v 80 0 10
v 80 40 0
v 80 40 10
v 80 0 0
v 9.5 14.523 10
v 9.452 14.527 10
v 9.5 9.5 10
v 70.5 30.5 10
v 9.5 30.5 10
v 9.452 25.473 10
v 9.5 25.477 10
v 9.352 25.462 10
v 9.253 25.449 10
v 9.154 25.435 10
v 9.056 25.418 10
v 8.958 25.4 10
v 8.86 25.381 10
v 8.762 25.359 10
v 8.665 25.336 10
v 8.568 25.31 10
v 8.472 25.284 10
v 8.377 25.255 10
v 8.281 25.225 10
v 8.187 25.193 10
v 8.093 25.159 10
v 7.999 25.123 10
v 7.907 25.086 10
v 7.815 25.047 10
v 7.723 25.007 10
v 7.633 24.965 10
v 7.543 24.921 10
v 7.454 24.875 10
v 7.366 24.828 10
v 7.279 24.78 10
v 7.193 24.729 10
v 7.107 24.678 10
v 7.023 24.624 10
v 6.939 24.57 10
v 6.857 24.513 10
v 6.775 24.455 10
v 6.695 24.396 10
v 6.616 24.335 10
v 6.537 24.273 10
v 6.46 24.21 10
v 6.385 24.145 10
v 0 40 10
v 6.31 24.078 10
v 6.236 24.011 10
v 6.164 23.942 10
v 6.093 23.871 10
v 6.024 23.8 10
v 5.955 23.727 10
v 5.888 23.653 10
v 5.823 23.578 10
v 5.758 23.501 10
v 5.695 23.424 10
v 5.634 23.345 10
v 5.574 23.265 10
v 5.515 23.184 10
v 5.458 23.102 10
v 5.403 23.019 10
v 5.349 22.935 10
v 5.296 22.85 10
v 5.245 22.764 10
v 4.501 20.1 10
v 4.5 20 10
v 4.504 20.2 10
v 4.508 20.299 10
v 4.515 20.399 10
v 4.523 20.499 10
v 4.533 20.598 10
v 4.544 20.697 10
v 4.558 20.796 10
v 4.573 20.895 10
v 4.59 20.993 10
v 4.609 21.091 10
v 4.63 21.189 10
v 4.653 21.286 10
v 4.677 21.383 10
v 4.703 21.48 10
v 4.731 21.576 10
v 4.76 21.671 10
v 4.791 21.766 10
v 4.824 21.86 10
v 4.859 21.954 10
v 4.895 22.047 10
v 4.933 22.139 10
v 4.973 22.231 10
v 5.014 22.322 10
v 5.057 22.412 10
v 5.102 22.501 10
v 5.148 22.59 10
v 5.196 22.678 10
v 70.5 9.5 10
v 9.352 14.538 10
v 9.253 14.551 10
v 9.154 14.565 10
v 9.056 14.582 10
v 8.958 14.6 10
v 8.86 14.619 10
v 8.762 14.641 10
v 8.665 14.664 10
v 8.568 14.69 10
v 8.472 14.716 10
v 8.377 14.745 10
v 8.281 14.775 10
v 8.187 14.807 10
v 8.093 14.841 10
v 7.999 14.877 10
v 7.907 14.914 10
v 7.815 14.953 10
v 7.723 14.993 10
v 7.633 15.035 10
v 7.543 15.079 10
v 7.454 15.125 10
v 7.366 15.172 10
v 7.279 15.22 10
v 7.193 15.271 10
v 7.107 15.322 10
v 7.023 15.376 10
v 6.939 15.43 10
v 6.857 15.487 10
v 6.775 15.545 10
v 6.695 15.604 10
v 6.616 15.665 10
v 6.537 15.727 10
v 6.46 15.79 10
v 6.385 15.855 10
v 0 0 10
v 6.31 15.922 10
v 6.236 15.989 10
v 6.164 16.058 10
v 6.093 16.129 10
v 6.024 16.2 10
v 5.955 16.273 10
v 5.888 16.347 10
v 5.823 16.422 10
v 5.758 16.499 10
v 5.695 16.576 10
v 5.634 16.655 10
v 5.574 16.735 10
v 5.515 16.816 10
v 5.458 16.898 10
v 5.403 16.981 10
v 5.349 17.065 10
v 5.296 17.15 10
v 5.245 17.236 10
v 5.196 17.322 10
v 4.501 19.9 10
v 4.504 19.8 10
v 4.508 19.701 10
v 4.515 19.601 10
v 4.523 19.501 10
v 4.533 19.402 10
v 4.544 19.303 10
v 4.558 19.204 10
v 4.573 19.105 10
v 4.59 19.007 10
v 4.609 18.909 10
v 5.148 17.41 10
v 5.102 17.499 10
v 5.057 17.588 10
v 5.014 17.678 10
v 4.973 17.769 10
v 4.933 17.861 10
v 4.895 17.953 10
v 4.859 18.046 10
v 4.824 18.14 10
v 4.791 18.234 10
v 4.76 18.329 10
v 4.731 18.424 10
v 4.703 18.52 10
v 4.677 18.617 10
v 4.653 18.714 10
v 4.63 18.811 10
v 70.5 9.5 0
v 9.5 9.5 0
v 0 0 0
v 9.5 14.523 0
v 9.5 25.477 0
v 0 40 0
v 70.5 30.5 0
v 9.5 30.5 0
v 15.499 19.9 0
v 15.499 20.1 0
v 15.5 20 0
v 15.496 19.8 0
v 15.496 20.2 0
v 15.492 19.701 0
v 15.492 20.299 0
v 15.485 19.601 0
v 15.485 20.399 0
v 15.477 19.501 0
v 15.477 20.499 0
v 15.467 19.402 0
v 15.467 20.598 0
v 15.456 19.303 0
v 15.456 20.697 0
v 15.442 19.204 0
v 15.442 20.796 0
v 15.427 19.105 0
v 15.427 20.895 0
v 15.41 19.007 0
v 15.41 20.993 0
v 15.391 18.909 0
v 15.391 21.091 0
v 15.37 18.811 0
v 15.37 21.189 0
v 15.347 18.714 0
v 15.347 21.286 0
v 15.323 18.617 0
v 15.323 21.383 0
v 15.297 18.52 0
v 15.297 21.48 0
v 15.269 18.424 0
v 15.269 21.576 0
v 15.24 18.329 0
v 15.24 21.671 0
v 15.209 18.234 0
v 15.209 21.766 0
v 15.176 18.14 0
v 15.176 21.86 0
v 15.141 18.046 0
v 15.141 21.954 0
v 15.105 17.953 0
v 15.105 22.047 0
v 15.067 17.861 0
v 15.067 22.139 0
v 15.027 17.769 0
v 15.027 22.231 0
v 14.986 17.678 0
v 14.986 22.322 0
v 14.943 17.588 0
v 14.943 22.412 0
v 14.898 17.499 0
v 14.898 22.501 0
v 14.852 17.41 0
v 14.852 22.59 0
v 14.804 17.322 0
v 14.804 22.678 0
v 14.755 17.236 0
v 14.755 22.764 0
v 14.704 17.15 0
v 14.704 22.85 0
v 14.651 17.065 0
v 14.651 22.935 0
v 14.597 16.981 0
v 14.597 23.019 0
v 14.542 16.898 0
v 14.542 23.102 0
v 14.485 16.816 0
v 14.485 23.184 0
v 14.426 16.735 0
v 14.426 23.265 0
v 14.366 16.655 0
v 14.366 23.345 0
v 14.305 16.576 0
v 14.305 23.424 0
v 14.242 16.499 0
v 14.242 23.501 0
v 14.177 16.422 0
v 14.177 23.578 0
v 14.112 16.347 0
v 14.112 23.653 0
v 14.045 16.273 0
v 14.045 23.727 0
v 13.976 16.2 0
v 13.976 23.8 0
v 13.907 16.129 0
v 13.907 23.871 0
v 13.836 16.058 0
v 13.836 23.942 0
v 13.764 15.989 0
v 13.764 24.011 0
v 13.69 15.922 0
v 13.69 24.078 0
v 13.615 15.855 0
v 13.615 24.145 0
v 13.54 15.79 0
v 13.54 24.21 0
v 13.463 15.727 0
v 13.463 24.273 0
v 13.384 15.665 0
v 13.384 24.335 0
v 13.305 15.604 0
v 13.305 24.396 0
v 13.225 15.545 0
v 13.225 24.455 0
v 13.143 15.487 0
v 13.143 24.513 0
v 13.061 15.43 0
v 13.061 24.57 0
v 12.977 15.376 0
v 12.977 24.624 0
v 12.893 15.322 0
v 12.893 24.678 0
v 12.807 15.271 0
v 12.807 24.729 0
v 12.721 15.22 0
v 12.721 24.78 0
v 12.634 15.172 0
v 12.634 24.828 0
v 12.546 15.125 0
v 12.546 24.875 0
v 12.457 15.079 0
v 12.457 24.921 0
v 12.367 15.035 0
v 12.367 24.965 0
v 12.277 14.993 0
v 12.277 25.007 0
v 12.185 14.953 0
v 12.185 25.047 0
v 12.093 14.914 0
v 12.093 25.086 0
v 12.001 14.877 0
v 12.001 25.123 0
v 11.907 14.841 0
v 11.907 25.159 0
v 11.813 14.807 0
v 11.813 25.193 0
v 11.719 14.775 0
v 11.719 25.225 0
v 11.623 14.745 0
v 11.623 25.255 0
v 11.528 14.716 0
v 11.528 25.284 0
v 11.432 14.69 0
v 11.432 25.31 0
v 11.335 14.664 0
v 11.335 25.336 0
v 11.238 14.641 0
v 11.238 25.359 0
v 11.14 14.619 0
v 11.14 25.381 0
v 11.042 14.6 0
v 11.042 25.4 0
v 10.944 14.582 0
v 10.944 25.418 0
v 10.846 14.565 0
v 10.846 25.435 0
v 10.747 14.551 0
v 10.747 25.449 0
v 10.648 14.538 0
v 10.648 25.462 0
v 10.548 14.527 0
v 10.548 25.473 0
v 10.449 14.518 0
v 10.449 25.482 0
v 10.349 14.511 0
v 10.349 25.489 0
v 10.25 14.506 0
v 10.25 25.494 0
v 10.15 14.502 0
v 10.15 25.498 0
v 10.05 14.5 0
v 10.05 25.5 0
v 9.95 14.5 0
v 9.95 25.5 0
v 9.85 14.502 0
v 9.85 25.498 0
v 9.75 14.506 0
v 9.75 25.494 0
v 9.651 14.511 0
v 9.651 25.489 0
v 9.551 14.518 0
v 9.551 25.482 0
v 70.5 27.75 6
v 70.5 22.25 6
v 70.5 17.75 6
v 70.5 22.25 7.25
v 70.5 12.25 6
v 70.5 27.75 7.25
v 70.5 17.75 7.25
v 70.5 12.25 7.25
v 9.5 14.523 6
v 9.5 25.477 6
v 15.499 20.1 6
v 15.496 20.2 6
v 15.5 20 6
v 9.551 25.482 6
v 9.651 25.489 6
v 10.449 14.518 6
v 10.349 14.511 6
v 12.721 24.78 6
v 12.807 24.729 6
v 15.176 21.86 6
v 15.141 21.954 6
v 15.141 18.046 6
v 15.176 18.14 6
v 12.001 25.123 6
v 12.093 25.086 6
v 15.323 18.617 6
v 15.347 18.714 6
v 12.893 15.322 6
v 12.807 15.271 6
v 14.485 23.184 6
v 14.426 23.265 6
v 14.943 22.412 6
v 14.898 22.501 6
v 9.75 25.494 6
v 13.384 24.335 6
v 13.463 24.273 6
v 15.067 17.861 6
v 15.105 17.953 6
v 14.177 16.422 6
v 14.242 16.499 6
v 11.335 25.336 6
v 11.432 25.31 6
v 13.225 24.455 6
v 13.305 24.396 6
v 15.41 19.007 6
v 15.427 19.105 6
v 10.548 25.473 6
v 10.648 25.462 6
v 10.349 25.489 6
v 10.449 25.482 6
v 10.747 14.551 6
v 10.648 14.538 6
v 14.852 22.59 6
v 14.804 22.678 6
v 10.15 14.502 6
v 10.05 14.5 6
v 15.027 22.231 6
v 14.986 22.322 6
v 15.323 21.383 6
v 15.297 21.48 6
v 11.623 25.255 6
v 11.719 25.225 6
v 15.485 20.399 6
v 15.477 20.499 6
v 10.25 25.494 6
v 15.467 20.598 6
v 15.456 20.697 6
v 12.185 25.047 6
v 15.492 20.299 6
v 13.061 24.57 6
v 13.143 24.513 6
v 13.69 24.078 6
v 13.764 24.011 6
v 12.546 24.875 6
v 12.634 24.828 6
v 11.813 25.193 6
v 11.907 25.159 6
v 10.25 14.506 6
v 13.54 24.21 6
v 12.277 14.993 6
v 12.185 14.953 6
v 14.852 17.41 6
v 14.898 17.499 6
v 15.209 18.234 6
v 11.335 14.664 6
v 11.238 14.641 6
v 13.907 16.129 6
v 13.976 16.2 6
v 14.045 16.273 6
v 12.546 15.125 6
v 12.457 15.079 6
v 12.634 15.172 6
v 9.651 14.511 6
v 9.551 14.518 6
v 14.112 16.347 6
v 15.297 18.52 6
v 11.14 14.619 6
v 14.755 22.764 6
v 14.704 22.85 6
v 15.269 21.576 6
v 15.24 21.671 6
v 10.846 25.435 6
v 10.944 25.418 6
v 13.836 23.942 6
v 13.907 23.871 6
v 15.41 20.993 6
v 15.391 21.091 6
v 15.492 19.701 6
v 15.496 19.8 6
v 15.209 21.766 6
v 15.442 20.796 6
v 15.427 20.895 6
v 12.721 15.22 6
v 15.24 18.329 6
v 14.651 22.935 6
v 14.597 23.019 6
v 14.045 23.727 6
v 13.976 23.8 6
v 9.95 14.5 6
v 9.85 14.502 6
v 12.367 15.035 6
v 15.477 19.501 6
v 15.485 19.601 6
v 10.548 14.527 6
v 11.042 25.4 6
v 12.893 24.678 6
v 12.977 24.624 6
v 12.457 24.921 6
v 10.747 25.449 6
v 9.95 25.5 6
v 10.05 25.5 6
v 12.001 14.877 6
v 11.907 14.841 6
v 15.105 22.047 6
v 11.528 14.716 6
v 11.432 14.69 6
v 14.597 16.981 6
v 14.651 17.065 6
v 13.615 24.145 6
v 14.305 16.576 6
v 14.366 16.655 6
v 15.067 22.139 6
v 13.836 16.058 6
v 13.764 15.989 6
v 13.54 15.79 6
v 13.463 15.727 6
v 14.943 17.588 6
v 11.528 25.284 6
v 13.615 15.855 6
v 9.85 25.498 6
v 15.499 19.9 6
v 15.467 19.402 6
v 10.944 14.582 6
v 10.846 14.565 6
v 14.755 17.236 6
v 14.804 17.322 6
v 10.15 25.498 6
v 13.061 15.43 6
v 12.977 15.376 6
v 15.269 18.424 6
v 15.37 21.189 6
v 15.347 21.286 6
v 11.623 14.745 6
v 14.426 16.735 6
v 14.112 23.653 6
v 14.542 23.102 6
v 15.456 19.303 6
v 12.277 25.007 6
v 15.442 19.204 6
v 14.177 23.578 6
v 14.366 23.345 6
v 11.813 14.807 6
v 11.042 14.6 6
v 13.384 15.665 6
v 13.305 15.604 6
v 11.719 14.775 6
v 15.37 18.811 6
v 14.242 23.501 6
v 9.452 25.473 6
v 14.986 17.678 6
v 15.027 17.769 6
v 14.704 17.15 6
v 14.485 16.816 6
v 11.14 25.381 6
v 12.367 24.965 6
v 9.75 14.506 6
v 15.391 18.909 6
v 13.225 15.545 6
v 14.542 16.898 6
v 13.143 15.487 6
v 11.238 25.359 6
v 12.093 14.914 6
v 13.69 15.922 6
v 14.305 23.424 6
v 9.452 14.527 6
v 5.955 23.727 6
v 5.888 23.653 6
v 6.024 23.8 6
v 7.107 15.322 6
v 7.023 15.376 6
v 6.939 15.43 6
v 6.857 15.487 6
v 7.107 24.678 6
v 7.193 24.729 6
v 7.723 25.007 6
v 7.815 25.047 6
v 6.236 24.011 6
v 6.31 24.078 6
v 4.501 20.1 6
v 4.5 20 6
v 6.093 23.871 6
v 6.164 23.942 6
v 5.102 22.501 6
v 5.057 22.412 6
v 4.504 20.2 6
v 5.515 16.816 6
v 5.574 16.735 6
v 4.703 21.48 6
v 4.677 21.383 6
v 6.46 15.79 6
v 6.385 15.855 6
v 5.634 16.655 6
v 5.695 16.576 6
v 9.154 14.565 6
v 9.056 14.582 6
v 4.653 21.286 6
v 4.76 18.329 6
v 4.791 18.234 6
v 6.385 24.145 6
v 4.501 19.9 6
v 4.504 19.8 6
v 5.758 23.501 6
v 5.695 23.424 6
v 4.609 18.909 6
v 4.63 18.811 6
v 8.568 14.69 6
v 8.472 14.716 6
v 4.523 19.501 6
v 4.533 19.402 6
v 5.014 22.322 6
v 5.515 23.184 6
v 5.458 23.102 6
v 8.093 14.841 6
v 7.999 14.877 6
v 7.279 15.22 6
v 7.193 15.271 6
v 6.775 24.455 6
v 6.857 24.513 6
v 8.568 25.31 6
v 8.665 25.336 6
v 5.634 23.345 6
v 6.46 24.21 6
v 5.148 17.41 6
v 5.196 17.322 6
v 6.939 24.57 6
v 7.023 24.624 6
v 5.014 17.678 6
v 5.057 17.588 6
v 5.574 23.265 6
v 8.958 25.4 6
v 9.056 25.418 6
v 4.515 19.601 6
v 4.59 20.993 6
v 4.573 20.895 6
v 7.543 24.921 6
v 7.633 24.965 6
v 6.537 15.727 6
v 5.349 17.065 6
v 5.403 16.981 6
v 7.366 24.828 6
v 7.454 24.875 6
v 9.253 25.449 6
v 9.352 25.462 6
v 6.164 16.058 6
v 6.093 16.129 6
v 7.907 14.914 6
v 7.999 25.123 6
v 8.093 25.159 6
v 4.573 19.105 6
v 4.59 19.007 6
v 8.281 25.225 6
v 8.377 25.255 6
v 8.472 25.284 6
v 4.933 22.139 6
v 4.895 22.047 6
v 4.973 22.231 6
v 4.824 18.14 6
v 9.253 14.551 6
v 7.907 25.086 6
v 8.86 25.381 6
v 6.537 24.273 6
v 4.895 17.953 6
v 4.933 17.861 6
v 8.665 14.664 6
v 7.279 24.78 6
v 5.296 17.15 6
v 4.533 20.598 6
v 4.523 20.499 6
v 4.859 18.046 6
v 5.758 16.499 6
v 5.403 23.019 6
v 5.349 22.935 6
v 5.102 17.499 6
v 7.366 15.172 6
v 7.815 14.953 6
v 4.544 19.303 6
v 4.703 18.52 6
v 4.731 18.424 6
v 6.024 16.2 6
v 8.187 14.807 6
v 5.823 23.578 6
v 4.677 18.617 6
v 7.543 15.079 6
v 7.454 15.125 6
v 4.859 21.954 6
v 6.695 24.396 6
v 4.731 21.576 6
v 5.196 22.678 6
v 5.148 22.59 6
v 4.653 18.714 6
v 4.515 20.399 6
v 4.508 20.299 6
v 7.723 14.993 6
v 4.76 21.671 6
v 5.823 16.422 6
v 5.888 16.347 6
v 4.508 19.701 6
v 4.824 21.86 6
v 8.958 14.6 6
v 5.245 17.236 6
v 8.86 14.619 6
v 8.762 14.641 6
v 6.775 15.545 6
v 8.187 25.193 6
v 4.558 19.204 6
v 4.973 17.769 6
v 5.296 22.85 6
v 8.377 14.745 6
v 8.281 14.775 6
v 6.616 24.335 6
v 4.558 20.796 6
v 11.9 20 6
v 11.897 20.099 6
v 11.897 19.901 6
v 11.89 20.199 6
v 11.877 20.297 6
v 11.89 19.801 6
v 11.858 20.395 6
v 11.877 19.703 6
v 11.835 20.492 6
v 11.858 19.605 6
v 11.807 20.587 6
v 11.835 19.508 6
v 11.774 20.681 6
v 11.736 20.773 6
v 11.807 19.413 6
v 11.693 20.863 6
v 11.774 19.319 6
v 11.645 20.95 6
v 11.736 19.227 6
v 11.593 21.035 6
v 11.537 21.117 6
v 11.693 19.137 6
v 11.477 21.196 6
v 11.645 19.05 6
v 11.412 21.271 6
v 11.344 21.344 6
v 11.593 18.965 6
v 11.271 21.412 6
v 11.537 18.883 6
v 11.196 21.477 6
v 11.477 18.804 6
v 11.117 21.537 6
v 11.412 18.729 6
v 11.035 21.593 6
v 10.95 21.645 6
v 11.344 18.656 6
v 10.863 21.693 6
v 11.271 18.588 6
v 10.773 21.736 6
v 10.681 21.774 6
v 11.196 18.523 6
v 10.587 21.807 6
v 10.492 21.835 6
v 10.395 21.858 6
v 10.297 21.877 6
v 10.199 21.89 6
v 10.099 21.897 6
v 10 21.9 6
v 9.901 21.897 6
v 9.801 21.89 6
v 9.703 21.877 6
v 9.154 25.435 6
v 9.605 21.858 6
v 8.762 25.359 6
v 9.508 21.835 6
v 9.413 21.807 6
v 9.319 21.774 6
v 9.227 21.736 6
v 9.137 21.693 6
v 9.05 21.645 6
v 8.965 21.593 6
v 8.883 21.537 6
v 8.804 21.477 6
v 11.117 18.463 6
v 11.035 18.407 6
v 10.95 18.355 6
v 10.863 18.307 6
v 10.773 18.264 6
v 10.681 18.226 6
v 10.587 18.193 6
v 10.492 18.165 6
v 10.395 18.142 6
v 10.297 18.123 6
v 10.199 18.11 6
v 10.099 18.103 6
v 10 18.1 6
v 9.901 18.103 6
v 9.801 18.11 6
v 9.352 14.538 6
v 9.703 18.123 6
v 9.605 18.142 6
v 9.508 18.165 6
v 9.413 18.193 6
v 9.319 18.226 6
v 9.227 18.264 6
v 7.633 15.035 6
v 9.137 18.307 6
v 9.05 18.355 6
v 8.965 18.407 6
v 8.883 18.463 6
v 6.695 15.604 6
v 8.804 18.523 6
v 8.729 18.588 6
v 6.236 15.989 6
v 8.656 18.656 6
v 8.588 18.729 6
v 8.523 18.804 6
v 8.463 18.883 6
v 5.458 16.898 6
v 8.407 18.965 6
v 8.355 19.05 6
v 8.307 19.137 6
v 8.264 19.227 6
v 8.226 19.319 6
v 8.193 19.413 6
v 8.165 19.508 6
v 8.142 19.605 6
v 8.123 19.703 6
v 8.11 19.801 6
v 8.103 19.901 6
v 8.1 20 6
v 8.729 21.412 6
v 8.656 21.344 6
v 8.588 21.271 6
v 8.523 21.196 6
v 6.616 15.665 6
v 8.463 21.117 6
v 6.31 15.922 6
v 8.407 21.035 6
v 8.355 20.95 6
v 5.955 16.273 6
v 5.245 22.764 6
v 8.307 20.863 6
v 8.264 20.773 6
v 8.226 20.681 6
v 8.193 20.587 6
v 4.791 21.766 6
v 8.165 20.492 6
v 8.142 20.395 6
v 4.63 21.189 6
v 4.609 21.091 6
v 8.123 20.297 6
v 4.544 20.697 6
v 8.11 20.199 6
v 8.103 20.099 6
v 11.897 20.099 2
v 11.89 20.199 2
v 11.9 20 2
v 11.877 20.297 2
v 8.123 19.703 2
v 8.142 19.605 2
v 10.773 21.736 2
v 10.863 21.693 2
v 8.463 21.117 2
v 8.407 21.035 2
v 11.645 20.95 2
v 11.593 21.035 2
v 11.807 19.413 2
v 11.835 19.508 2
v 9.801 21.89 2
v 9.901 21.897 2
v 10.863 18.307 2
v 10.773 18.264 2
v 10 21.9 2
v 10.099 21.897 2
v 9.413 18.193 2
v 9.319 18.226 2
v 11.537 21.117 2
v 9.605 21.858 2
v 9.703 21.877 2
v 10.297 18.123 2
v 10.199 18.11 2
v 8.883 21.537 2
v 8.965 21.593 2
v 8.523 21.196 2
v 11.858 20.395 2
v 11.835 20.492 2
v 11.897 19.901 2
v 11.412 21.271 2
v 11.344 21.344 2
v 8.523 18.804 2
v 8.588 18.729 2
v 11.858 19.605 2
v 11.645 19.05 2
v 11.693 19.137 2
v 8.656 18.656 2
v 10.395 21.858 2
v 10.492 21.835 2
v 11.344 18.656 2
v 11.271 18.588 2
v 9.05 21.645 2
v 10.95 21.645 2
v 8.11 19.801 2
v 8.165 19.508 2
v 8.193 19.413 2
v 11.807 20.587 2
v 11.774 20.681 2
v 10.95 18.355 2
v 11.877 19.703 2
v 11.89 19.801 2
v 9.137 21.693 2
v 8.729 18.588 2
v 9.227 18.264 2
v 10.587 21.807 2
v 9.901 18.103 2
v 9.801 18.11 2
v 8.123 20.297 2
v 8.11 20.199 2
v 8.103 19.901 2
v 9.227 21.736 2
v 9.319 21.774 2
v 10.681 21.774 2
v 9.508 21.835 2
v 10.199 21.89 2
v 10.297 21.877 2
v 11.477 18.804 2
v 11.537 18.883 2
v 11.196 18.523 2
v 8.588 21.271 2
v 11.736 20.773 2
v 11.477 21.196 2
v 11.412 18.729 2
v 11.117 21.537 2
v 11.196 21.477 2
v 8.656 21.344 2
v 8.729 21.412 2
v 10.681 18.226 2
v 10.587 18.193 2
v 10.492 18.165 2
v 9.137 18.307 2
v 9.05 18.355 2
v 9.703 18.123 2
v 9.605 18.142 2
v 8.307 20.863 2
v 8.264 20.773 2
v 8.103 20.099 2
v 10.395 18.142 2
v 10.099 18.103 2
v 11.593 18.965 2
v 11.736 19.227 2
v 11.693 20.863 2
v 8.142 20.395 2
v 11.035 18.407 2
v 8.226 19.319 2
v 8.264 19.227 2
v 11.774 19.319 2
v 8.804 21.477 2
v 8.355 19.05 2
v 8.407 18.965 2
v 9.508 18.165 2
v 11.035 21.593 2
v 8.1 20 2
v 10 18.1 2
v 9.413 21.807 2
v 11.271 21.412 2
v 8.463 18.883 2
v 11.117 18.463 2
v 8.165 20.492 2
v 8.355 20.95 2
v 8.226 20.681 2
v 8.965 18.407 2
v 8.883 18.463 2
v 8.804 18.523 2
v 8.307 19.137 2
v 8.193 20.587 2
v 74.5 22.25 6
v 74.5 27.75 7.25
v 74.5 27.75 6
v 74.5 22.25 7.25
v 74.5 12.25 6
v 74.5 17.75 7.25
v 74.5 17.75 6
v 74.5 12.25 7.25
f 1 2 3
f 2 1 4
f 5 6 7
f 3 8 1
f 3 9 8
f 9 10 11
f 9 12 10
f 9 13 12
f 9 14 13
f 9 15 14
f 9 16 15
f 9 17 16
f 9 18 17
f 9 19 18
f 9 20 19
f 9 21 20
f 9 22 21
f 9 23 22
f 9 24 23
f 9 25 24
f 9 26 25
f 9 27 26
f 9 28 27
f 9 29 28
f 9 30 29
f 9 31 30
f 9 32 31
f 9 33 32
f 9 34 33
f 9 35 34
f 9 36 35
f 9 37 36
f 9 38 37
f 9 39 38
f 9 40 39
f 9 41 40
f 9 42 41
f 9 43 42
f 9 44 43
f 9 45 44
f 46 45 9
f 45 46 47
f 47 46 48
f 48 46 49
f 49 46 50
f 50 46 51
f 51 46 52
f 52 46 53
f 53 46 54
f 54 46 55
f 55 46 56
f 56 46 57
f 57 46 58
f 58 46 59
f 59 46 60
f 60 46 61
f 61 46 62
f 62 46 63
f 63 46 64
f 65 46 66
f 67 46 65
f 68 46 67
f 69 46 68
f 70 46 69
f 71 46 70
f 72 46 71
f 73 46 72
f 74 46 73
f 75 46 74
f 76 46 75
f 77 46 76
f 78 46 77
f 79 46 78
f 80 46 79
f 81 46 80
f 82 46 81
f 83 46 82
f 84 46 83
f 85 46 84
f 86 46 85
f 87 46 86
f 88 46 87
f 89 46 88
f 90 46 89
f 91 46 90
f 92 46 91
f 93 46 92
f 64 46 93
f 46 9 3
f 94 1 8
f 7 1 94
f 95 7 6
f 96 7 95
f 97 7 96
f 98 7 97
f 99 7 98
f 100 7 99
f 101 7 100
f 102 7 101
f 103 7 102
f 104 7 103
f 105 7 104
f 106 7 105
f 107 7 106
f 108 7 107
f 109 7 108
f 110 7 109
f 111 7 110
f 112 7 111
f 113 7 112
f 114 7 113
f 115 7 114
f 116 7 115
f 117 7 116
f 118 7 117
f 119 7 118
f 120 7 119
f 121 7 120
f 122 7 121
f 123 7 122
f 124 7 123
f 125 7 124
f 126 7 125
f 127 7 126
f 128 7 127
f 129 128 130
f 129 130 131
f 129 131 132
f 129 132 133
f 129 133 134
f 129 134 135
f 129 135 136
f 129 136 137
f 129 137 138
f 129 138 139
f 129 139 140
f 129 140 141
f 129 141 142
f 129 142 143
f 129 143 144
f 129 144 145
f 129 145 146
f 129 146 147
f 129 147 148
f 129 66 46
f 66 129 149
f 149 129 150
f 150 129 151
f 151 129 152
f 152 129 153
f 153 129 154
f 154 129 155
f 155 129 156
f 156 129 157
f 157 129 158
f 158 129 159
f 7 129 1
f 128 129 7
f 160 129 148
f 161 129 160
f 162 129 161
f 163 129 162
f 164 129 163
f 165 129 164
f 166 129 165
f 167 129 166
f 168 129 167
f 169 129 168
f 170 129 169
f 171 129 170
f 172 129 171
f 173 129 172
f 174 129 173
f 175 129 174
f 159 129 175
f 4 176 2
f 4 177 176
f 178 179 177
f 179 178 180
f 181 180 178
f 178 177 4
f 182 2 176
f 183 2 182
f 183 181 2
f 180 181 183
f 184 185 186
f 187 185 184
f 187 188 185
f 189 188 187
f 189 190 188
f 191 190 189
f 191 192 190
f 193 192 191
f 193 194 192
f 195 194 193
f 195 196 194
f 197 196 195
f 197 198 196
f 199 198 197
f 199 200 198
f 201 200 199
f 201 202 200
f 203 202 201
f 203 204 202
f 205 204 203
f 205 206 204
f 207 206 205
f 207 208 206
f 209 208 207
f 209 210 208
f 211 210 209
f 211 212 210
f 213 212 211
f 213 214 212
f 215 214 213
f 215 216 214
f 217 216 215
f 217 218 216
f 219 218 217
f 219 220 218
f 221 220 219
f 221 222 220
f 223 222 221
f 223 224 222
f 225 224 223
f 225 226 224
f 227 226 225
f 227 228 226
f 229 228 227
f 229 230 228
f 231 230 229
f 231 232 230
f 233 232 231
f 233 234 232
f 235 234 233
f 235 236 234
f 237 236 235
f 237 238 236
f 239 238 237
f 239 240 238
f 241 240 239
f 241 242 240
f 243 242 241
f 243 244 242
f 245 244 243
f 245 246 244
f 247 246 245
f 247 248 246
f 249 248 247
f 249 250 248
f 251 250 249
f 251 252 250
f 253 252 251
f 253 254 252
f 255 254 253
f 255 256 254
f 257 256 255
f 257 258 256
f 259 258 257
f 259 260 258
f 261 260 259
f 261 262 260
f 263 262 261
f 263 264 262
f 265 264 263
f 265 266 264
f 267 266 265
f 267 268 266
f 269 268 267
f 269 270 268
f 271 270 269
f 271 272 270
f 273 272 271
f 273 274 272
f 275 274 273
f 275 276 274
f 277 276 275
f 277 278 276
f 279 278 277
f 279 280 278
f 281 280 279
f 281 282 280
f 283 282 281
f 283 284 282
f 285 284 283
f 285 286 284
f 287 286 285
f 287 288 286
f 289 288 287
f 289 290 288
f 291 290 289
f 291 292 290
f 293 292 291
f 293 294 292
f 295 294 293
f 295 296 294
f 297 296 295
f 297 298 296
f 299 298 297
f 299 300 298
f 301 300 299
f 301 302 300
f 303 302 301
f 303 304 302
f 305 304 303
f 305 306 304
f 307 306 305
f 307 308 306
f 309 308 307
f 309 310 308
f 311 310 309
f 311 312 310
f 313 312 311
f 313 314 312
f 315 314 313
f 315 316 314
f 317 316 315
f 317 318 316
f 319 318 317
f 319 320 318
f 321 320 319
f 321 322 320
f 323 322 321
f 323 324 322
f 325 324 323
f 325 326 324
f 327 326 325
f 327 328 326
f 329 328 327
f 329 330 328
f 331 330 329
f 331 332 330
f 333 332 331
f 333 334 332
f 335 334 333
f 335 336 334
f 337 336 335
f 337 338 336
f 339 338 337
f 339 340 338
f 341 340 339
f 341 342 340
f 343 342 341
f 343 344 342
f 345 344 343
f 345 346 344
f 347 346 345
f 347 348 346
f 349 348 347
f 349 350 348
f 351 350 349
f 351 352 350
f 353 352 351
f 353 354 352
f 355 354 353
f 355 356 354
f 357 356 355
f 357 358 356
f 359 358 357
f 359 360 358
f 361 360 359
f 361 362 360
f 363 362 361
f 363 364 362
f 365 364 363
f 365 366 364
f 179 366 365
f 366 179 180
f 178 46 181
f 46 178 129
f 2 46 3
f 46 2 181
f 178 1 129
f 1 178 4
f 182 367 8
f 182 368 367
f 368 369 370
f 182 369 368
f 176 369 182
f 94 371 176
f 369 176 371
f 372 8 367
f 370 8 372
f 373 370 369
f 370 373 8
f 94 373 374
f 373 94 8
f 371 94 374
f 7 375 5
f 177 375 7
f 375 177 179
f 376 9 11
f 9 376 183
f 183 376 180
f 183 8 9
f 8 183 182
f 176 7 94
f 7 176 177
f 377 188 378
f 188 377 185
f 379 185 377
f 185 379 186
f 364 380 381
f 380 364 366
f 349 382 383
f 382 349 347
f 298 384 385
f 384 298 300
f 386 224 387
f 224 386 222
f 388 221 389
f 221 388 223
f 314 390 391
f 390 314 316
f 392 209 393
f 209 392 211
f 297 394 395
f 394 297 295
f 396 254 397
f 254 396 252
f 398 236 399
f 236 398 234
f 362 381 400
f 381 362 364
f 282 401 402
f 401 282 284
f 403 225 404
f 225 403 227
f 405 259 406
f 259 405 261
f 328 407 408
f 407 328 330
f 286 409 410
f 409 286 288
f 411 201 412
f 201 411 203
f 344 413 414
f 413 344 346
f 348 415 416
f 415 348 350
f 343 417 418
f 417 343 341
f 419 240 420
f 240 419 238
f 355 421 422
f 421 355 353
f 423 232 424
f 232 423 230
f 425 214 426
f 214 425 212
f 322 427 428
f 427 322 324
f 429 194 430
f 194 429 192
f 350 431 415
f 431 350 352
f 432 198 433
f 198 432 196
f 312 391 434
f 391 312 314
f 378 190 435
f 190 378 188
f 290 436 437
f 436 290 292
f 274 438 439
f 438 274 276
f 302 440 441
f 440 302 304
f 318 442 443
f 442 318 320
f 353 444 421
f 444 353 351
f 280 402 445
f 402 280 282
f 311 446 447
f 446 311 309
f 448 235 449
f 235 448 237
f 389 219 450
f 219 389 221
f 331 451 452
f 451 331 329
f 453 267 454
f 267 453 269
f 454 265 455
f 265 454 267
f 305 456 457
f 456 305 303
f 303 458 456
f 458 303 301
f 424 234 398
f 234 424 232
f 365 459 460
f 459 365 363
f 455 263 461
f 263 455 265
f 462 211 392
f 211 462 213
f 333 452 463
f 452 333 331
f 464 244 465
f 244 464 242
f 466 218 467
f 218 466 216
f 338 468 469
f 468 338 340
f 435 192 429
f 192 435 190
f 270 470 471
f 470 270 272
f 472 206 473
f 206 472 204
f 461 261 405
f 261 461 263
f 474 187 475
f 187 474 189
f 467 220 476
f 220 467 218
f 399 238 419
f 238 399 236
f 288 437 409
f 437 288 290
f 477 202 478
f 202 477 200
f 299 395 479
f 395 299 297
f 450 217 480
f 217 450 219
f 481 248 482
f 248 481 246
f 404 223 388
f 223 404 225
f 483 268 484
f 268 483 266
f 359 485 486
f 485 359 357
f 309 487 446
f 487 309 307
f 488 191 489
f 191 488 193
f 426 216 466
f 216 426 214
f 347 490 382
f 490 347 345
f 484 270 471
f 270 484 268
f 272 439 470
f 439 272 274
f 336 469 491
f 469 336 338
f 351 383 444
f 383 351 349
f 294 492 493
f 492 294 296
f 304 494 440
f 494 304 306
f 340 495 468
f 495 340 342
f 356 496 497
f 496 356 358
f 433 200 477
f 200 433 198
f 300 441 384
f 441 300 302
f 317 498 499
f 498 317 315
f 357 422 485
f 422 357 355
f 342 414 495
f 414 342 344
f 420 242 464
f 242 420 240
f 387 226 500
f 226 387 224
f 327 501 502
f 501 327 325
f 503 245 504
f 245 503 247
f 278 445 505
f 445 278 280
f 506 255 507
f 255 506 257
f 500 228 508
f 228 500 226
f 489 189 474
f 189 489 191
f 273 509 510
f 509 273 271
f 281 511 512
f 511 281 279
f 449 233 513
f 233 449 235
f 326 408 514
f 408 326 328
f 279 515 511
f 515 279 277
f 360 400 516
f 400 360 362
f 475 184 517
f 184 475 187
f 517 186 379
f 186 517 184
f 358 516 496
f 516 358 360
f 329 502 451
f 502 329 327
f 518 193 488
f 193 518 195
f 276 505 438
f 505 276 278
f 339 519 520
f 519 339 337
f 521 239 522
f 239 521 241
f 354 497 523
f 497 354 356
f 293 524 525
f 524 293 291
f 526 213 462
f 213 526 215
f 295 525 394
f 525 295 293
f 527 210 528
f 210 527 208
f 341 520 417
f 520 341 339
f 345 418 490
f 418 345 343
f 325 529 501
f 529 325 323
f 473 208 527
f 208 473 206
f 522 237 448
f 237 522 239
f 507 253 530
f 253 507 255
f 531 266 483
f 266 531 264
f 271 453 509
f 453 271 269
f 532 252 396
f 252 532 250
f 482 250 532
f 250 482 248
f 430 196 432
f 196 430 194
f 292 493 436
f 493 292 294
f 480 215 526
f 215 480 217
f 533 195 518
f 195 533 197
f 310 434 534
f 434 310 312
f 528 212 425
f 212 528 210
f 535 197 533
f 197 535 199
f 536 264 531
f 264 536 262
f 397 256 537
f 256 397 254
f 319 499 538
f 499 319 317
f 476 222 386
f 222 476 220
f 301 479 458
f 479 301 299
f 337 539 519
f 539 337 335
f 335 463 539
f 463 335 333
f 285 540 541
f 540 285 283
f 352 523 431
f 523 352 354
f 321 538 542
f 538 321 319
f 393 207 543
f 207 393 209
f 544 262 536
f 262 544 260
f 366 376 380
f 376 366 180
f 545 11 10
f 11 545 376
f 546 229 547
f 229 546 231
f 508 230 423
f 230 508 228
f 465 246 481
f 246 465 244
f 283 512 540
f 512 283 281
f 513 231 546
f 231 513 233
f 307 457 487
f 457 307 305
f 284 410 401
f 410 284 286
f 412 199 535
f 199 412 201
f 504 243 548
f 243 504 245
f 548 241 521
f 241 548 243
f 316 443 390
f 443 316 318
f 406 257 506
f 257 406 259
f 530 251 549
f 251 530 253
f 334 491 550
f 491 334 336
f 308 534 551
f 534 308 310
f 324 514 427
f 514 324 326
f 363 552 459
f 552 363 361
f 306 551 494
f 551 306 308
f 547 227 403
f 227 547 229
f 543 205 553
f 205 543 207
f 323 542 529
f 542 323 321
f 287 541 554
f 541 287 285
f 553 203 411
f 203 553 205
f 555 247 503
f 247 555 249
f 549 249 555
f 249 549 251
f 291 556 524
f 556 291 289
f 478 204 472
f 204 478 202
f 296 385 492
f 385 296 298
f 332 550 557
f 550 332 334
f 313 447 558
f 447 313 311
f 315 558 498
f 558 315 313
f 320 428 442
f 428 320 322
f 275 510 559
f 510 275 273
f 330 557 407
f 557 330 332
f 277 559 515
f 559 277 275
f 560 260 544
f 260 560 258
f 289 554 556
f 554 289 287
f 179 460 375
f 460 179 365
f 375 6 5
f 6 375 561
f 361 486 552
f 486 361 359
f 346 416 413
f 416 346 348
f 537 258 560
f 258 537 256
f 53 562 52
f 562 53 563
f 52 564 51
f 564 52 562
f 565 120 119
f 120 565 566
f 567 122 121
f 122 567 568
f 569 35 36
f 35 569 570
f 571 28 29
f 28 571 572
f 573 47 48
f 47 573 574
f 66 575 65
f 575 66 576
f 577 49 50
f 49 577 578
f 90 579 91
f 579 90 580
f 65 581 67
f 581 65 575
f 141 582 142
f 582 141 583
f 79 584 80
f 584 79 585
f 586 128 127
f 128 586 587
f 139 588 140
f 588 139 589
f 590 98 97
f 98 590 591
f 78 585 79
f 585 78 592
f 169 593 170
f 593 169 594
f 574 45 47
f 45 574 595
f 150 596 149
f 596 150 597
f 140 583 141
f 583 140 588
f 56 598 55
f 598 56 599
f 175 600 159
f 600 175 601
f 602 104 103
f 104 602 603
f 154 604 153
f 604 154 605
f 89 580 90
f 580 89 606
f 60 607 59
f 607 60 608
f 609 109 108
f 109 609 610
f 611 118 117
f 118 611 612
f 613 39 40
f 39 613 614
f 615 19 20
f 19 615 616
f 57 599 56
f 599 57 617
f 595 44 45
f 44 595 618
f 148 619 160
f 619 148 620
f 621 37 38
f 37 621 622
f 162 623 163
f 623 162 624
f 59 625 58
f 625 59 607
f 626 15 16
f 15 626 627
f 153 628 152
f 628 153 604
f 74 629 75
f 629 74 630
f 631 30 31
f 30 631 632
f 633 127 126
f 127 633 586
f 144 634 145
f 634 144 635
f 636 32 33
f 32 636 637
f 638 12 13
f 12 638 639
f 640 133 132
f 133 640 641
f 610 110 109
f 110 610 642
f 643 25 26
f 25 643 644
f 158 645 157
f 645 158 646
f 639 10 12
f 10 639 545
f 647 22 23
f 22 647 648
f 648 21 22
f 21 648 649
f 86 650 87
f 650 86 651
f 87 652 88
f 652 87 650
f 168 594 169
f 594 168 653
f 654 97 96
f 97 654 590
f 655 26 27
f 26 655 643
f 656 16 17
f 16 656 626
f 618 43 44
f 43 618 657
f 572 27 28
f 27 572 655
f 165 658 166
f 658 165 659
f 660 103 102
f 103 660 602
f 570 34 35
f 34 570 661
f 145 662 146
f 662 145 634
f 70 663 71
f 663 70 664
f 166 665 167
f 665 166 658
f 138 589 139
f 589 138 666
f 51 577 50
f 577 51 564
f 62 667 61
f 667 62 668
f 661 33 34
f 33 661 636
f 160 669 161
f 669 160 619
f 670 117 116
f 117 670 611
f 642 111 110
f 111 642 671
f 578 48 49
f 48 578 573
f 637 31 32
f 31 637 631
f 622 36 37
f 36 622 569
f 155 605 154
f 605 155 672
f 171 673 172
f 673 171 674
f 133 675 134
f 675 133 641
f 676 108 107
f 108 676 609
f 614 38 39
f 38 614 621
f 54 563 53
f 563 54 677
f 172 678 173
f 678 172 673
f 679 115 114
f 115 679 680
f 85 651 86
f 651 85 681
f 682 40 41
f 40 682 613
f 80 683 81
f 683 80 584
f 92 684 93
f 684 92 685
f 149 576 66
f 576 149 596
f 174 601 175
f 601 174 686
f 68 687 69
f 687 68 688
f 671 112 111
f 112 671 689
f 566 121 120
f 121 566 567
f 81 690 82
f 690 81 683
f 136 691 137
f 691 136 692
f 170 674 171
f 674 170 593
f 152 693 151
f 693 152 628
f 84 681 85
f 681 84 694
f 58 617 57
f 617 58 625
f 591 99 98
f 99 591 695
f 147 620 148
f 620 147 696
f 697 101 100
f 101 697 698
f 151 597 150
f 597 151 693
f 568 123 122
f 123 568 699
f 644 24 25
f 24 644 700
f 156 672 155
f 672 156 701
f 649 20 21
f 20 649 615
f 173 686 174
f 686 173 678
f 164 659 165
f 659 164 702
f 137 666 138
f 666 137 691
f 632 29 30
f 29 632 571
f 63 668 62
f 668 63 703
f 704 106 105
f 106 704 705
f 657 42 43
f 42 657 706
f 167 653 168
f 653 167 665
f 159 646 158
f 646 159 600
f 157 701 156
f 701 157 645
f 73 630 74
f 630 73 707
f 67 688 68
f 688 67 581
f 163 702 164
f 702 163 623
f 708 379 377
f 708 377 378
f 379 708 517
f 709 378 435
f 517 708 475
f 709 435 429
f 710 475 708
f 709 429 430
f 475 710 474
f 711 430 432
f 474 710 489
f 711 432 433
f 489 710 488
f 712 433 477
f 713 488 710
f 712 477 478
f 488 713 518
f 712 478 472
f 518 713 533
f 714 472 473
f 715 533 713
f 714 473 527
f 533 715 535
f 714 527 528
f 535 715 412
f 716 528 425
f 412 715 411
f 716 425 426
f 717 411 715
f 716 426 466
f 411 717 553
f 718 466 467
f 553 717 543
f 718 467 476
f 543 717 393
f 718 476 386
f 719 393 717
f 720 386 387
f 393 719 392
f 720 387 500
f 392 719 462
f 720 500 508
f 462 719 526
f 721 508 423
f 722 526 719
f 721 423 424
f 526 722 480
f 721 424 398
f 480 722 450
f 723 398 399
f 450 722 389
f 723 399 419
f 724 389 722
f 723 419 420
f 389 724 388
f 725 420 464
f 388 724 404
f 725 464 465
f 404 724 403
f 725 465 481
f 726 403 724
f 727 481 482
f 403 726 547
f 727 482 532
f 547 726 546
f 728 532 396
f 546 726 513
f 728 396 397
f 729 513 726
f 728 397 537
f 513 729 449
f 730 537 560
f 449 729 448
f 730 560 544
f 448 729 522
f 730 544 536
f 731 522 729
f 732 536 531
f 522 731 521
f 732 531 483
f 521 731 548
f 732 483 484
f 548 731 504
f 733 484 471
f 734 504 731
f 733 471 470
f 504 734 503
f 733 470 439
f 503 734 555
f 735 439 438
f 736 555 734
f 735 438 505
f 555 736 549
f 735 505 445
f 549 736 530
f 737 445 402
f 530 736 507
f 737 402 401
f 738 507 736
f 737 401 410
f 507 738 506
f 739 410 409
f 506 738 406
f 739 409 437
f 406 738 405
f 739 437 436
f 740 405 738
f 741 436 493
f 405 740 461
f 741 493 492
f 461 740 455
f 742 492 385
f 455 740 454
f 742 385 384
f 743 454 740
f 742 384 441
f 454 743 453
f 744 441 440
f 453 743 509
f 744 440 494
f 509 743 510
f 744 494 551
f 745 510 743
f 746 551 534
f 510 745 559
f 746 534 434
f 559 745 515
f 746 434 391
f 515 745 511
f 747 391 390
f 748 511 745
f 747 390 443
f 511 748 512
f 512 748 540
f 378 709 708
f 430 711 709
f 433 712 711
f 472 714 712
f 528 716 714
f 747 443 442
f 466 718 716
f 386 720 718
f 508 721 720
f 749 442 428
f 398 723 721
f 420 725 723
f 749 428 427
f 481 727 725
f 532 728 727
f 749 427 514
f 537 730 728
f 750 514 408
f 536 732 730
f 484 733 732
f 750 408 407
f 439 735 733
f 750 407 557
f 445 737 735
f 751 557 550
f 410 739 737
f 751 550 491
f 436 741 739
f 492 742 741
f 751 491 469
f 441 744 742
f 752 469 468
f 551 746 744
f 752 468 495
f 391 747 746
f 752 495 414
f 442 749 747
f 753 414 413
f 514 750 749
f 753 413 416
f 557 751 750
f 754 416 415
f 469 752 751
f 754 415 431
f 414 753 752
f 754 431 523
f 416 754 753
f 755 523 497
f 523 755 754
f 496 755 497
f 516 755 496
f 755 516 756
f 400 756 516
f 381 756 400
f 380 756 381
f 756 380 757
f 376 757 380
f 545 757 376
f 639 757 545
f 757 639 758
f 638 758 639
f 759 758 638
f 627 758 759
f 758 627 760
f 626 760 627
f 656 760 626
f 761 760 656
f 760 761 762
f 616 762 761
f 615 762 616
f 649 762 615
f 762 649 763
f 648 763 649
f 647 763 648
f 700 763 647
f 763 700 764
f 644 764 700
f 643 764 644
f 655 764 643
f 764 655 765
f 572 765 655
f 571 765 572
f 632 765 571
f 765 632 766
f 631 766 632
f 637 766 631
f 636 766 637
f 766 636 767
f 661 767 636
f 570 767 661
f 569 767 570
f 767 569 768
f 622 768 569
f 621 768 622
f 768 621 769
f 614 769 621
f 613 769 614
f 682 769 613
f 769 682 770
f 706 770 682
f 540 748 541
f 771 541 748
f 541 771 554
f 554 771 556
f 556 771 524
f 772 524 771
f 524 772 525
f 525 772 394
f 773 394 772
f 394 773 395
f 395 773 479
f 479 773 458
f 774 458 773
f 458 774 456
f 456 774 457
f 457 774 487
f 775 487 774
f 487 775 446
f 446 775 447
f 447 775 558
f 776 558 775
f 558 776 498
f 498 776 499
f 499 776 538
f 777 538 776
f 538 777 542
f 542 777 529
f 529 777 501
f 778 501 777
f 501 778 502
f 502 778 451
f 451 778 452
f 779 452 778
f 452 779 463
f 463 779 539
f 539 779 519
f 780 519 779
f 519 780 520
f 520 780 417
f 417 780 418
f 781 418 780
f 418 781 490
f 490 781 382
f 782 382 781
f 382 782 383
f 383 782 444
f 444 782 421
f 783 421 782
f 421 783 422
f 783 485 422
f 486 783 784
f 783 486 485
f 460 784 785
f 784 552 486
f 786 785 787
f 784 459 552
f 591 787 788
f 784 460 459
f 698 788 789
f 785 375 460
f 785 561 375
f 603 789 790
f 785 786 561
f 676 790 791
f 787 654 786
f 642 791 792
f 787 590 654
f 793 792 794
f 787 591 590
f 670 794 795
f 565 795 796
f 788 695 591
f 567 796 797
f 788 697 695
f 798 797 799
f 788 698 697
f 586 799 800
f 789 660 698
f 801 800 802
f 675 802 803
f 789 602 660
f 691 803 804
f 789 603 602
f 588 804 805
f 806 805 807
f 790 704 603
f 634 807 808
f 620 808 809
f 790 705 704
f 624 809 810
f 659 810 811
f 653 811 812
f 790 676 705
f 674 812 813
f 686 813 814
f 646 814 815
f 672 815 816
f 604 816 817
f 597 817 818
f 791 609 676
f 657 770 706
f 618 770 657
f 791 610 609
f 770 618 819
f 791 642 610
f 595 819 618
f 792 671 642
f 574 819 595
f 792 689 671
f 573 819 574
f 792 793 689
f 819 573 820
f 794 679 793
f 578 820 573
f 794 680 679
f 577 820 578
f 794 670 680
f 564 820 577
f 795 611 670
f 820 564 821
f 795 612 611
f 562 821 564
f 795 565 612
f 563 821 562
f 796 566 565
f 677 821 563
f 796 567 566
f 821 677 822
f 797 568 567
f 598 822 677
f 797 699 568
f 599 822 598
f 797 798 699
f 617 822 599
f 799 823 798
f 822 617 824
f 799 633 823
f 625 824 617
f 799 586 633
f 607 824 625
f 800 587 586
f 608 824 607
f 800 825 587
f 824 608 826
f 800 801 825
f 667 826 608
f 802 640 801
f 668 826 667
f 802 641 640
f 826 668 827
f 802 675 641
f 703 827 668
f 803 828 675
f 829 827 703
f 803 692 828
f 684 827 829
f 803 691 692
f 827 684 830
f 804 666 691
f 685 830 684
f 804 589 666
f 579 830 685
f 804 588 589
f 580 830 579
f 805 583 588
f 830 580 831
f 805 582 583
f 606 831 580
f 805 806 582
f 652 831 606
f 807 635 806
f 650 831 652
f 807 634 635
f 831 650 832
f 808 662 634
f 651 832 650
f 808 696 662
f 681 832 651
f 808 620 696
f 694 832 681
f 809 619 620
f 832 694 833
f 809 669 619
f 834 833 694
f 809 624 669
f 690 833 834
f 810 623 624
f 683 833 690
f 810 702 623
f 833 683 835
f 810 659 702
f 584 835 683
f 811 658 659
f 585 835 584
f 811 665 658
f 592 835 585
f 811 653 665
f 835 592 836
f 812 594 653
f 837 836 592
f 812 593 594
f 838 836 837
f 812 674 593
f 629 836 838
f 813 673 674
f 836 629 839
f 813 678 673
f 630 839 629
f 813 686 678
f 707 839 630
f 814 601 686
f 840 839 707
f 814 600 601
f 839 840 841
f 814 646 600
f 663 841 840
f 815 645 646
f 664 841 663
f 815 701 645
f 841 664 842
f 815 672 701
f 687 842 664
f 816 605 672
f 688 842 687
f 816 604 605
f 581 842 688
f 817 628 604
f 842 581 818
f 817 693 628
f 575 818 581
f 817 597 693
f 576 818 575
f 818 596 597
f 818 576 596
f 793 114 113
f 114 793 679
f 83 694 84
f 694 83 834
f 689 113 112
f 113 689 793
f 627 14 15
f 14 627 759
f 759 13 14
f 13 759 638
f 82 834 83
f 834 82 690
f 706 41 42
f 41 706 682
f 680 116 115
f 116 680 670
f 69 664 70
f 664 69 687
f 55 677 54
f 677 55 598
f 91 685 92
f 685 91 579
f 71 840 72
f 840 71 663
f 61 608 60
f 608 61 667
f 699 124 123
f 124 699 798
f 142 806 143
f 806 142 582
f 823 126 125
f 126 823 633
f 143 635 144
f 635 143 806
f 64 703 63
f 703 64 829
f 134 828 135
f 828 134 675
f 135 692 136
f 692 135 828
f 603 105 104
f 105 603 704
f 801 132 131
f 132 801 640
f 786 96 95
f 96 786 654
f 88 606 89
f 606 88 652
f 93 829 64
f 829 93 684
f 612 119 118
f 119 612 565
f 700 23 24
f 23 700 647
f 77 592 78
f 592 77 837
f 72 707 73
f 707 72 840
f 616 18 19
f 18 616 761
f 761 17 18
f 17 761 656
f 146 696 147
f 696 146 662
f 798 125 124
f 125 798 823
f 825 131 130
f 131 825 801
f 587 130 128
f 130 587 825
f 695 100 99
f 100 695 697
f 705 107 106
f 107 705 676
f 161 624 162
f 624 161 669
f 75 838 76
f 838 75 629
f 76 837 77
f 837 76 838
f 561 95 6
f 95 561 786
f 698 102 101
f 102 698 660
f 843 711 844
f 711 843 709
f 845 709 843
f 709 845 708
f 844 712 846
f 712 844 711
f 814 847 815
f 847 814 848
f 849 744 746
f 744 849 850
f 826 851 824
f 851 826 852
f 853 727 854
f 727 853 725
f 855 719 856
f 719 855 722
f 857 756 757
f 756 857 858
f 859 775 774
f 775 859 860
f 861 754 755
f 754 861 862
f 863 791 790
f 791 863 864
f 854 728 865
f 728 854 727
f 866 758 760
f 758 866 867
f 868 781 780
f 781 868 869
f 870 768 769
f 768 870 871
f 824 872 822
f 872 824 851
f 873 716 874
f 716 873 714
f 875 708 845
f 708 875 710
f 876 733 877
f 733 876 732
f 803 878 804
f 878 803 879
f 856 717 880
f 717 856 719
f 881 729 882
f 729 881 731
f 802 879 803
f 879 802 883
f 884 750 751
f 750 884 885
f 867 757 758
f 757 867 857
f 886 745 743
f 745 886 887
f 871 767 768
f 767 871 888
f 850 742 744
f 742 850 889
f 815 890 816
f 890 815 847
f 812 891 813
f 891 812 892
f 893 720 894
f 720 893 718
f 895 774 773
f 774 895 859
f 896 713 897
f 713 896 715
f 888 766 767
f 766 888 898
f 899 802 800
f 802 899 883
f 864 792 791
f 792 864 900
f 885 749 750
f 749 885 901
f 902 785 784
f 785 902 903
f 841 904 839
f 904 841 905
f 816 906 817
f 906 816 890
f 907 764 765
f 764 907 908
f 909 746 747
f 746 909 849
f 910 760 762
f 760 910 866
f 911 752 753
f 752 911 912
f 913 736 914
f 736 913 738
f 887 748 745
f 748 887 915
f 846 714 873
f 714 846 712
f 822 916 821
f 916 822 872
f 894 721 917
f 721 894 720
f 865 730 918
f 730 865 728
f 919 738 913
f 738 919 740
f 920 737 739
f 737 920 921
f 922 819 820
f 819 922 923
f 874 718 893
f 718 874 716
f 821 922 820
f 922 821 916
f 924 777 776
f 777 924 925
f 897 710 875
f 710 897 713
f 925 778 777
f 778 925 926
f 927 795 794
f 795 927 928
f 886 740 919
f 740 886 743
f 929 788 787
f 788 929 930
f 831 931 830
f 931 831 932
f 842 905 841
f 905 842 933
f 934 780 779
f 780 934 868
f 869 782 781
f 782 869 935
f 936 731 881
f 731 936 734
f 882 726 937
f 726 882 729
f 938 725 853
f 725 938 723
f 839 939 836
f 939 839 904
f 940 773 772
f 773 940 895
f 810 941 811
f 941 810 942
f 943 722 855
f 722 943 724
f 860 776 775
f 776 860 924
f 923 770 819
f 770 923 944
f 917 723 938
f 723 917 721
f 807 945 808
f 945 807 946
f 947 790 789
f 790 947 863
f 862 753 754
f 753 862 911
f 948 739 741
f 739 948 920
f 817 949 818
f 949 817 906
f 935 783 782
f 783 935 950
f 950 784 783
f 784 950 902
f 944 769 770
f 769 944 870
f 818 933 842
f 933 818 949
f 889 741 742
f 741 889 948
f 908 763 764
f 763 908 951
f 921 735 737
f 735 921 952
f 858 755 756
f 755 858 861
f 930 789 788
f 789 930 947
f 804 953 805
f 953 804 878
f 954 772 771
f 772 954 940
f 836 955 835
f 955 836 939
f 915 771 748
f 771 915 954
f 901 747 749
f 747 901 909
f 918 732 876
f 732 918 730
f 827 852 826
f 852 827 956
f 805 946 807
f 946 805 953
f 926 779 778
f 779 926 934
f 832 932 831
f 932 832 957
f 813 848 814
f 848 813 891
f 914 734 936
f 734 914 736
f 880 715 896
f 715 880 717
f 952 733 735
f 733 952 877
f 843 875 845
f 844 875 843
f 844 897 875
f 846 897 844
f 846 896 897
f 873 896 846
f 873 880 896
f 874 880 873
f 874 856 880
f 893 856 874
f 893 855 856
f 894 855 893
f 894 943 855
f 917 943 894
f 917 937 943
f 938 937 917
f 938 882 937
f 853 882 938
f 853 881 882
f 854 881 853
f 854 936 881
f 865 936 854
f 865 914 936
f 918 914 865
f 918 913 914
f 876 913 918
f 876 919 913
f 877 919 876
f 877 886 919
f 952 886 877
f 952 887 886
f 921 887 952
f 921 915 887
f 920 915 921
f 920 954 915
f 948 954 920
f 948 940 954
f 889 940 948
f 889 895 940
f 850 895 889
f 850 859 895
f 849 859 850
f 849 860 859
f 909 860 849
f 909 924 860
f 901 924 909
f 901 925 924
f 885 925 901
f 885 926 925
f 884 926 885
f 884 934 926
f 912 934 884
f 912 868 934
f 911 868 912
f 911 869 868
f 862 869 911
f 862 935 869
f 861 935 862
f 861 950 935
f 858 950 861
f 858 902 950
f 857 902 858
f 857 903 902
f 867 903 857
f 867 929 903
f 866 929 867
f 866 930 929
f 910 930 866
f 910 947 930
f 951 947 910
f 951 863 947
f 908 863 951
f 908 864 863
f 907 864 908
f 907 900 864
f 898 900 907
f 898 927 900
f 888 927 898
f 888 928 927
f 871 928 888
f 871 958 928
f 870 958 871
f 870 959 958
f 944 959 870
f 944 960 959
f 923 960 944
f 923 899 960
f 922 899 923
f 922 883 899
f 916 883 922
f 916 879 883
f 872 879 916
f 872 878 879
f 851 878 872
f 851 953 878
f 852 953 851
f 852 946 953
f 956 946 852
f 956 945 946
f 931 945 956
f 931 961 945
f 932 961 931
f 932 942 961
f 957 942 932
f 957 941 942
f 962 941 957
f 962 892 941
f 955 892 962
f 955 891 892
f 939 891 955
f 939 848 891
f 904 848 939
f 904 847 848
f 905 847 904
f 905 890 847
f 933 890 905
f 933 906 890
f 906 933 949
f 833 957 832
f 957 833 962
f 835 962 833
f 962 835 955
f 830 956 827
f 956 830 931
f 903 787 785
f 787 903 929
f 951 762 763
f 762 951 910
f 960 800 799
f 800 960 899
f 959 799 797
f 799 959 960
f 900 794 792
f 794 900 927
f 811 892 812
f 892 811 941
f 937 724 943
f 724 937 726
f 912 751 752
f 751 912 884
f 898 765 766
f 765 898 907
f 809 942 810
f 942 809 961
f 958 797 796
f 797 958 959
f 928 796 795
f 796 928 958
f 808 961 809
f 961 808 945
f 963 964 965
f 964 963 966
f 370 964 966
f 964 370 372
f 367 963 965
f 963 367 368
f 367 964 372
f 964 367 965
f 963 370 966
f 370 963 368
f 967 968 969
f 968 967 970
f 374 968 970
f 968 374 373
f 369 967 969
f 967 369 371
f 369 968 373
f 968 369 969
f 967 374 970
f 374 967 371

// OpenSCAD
$fa = .1;
$fs = .1;
module diphatch(){
    difference(){
        union(){
            difference(){
                cube([80,40,10]);
                translate([9.5,9.5,-5]) cube([61,21,20]);
            }
            translate([10,20,0]) cylinder(h=10, r=5.5);
        }
        translate([10,20,6]) cylinder(h=10, r=5.5);
        translate([10,20,2]) cylinder(h=10, r=1.9);
        
        translate([69,17.5+5-.25,6]) cube([5.5,5.5,1.25]);
        translate([69,17.5-5-.25,6]) cube([5.5,5.5,1.25]);
    }
}
diphatch();
